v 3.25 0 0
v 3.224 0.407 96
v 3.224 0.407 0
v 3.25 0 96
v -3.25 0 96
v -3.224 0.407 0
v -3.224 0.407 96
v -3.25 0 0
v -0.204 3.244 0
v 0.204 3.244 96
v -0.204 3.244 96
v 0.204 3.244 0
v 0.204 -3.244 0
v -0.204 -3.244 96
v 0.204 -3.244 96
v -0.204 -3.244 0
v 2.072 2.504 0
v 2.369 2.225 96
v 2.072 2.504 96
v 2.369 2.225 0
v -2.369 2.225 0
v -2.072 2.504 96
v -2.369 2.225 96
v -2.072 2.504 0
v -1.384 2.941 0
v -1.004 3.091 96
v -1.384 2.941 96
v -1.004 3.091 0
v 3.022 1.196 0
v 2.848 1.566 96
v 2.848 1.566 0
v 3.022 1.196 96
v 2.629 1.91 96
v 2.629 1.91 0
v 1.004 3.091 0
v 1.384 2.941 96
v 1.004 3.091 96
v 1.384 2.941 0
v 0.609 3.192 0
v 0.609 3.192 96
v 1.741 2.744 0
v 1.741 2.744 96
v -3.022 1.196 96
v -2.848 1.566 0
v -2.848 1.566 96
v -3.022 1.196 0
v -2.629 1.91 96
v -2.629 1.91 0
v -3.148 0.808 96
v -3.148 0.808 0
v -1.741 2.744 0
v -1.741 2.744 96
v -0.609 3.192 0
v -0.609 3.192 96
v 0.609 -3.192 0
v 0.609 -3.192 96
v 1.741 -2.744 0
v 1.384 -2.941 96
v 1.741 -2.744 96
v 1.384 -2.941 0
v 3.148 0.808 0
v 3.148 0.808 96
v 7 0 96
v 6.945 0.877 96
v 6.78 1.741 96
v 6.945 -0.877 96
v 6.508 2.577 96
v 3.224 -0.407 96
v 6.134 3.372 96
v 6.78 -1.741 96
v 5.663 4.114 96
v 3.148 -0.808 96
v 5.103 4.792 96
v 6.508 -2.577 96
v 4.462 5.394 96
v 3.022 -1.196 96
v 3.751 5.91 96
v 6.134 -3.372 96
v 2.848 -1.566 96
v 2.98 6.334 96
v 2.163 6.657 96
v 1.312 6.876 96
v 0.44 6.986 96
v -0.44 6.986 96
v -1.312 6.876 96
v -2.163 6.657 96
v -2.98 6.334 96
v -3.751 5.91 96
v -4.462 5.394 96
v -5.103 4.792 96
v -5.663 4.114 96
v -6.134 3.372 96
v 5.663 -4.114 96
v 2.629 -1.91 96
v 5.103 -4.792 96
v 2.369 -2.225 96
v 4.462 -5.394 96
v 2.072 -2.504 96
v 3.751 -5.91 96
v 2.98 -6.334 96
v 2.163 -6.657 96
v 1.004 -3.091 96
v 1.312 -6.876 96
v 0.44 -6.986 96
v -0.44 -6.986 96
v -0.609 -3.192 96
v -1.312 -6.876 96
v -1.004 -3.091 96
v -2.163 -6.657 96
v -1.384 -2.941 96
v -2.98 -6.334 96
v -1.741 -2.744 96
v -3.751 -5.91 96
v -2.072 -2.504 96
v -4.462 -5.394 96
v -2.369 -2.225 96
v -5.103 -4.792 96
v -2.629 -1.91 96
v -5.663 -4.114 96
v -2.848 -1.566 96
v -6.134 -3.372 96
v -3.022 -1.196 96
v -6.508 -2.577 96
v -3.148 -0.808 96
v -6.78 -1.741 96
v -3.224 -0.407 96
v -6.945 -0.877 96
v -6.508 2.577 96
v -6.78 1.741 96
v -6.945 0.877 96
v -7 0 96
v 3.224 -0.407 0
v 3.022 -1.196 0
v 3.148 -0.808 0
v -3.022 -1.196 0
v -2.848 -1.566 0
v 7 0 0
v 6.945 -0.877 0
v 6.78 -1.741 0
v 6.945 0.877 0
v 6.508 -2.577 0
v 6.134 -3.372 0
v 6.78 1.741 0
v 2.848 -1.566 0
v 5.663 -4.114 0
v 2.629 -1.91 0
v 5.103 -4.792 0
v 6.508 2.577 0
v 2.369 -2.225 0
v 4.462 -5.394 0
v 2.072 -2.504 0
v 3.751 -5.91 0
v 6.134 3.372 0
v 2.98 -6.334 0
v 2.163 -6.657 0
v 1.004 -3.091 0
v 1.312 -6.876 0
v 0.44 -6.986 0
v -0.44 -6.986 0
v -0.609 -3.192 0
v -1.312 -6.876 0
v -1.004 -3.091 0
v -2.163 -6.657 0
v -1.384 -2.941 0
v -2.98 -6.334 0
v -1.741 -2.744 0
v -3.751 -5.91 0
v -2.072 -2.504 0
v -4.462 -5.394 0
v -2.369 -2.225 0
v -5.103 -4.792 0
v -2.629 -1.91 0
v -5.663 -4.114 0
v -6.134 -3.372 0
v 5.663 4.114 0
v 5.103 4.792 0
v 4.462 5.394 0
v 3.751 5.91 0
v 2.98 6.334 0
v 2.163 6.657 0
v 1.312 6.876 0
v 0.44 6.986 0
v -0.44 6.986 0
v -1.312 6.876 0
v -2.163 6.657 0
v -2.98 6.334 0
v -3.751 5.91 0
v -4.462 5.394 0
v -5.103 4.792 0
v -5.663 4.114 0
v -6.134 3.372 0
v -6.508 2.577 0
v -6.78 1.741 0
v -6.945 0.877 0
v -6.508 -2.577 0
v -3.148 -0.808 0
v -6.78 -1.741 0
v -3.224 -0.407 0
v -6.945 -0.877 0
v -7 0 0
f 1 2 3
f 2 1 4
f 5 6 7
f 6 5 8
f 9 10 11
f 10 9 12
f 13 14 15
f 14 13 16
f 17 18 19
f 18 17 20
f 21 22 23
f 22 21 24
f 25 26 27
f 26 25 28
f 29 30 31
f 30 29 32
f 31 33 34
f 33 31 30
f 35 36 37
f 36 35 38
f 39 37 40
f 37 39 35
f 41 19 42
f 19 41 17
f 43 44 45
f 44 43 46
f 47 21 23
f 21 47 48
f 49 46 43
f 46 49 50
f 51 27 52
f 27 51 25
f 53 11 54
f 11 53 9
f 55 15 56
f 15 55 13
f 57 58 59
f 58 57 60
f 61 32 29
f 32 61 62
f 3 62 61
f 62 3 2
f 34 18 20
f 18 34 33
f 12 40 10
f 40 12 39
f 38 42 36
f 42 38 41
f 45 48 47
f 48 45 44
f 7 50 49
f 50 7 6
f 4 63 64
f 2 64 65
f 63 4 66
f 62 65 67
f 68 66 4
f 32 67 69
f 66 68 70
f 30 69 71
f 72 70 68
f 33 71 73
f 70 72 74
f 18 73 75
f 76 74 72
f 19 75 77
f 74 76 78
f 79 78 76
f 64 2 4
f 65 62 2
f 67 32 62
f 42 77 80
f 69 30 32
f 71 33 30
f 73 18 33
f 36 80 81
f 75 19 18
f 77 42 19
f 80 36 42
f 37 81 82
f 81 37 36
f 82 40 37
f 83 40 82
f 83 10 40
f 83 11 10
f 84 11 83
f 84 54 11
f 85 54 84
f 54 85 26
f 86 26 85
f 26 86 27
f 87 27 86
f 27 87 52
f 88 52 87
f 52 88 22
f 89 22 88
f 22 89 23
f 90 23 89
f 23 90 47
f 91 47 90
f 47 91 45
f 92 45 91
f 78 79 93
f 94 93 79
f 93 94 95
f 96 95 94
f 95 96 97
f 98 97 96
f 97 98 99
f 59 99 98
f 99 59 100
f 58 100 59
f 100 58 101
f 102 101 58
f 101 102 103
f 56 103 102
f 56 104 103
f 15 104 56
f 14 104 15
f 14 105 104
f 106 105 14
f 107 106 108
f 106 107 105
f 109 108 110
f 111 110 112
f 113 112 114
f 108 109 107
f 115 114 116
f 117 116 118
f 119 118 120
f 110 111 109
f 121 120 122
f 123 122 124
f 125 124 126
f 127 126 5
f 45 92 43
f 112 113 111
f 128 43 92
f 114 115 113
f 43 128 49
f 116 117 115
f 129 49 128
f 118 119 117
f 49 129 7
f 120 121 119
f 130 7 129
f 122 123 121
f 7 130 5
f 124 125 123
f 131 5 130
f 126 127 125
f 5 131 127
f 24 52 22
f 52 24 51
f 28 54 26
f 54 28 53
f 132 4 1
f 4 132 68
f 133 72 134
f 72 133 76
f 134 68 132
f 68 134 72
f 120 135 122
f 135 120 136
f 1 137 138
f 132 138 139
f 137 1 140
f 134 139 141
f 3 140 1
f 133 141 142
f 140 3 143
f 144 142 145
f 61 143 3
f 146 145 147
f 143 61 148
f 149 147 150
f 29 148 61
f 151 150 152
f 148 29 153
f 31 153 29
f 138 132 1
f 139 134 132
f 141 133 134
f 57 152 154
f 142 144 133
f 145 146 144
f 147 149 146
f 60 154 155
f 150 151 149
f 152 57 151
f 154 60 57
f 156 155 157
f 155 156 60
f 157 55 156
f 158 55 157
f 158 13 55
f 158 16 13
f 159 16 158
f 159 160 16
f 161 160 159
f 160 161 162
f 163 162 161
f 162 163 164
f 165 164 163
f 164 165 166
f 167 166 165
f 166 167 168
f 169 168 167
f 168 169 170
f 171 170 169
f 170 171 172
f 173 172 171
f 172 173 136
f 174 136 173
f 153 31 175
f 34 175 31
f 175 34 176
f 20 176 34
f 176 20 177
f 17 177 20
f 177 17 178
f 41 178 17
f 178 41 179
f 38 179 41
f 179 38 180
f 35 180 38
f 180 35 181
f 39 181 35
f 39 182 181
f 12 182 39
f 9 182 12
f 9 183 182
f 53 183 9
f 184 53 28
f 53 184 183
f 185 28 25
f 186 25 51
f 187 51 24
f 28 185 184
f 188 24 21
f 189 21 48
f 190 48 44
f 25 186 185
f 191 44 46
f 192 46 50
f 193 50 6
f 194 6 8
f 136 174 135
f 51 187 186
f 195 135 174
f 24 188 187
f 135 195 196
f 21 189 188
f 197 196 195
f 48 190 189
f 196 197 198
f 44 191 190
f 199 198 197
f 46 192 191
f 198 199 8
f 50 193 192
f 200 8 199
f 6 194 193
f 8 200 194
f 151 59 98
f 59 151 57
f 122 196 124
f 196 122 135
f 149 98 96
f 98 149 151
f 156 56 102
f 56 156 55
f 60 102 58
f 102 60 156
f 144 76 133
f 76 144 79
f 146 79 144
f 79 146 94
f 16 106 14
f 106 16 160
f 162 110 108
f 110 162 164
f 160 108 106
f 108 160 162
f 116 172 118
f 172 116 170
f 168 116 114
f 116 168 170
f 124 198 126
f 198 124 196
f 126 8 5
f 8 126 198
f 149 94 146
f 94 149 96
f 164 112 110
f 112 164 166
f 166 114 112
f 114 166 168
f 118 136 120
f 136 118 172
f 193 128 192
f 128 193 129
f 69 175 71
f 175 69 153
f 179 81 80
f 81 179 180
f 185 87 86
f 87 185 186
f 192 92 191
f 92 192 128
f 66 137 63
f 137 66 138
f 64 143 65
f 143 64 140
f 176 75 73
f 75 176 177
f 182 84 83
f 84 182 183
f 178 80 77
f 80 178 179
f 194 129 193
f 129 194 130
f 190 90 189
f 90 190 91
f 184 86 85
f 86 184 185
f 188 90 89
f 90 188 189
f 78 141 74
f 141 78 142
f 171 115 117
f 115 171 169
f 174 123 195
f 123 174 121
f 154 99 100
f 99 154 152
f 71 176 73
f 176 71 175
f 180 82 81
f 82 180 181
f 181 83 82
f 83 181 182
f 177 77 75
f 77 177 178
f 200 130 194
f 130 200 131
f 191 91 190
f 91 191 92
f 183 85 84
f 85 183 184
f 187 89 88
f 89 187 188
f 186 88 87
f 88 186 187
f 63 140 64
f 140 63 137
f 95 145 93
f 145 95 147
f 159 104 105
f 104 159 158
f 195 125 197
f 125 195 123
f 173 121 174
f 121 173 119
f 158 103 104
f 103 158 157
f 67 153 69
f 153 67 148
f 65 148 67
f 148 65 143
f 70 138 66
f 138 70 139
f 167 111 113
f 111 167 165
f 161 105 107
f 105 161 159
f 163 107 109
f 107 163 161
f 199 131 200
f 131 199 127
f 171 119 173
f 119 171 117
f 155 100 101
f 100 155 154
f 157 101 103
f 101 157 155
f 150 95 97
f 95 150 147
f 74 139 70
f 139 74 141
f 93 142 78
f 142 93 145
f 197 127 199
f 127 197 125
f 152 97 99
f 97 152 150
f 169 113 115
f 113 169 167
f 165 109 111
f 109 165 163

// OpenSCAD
$fn = 50;


difference() {
	union() {
		cylinder(h = 96, r = 7.0000000000);
	}
	union() {
		cylinder(h = 96, r = 3.2500000000);
		cylinder(h = 96, r = 3.2500000000);
		cylinder(h = 96, r = 1.8000000000);
		cylinder(h = 96, r = 1.8000000000);
		cylinder(h = 96, r = 1.8000000000);
		cylinder(h = 96, r = 1.8000000000);
		cylinder(h = 96, r = 1.8000000000);
		cylinder(h = 96, r = 1.8000000000);
	}
}
